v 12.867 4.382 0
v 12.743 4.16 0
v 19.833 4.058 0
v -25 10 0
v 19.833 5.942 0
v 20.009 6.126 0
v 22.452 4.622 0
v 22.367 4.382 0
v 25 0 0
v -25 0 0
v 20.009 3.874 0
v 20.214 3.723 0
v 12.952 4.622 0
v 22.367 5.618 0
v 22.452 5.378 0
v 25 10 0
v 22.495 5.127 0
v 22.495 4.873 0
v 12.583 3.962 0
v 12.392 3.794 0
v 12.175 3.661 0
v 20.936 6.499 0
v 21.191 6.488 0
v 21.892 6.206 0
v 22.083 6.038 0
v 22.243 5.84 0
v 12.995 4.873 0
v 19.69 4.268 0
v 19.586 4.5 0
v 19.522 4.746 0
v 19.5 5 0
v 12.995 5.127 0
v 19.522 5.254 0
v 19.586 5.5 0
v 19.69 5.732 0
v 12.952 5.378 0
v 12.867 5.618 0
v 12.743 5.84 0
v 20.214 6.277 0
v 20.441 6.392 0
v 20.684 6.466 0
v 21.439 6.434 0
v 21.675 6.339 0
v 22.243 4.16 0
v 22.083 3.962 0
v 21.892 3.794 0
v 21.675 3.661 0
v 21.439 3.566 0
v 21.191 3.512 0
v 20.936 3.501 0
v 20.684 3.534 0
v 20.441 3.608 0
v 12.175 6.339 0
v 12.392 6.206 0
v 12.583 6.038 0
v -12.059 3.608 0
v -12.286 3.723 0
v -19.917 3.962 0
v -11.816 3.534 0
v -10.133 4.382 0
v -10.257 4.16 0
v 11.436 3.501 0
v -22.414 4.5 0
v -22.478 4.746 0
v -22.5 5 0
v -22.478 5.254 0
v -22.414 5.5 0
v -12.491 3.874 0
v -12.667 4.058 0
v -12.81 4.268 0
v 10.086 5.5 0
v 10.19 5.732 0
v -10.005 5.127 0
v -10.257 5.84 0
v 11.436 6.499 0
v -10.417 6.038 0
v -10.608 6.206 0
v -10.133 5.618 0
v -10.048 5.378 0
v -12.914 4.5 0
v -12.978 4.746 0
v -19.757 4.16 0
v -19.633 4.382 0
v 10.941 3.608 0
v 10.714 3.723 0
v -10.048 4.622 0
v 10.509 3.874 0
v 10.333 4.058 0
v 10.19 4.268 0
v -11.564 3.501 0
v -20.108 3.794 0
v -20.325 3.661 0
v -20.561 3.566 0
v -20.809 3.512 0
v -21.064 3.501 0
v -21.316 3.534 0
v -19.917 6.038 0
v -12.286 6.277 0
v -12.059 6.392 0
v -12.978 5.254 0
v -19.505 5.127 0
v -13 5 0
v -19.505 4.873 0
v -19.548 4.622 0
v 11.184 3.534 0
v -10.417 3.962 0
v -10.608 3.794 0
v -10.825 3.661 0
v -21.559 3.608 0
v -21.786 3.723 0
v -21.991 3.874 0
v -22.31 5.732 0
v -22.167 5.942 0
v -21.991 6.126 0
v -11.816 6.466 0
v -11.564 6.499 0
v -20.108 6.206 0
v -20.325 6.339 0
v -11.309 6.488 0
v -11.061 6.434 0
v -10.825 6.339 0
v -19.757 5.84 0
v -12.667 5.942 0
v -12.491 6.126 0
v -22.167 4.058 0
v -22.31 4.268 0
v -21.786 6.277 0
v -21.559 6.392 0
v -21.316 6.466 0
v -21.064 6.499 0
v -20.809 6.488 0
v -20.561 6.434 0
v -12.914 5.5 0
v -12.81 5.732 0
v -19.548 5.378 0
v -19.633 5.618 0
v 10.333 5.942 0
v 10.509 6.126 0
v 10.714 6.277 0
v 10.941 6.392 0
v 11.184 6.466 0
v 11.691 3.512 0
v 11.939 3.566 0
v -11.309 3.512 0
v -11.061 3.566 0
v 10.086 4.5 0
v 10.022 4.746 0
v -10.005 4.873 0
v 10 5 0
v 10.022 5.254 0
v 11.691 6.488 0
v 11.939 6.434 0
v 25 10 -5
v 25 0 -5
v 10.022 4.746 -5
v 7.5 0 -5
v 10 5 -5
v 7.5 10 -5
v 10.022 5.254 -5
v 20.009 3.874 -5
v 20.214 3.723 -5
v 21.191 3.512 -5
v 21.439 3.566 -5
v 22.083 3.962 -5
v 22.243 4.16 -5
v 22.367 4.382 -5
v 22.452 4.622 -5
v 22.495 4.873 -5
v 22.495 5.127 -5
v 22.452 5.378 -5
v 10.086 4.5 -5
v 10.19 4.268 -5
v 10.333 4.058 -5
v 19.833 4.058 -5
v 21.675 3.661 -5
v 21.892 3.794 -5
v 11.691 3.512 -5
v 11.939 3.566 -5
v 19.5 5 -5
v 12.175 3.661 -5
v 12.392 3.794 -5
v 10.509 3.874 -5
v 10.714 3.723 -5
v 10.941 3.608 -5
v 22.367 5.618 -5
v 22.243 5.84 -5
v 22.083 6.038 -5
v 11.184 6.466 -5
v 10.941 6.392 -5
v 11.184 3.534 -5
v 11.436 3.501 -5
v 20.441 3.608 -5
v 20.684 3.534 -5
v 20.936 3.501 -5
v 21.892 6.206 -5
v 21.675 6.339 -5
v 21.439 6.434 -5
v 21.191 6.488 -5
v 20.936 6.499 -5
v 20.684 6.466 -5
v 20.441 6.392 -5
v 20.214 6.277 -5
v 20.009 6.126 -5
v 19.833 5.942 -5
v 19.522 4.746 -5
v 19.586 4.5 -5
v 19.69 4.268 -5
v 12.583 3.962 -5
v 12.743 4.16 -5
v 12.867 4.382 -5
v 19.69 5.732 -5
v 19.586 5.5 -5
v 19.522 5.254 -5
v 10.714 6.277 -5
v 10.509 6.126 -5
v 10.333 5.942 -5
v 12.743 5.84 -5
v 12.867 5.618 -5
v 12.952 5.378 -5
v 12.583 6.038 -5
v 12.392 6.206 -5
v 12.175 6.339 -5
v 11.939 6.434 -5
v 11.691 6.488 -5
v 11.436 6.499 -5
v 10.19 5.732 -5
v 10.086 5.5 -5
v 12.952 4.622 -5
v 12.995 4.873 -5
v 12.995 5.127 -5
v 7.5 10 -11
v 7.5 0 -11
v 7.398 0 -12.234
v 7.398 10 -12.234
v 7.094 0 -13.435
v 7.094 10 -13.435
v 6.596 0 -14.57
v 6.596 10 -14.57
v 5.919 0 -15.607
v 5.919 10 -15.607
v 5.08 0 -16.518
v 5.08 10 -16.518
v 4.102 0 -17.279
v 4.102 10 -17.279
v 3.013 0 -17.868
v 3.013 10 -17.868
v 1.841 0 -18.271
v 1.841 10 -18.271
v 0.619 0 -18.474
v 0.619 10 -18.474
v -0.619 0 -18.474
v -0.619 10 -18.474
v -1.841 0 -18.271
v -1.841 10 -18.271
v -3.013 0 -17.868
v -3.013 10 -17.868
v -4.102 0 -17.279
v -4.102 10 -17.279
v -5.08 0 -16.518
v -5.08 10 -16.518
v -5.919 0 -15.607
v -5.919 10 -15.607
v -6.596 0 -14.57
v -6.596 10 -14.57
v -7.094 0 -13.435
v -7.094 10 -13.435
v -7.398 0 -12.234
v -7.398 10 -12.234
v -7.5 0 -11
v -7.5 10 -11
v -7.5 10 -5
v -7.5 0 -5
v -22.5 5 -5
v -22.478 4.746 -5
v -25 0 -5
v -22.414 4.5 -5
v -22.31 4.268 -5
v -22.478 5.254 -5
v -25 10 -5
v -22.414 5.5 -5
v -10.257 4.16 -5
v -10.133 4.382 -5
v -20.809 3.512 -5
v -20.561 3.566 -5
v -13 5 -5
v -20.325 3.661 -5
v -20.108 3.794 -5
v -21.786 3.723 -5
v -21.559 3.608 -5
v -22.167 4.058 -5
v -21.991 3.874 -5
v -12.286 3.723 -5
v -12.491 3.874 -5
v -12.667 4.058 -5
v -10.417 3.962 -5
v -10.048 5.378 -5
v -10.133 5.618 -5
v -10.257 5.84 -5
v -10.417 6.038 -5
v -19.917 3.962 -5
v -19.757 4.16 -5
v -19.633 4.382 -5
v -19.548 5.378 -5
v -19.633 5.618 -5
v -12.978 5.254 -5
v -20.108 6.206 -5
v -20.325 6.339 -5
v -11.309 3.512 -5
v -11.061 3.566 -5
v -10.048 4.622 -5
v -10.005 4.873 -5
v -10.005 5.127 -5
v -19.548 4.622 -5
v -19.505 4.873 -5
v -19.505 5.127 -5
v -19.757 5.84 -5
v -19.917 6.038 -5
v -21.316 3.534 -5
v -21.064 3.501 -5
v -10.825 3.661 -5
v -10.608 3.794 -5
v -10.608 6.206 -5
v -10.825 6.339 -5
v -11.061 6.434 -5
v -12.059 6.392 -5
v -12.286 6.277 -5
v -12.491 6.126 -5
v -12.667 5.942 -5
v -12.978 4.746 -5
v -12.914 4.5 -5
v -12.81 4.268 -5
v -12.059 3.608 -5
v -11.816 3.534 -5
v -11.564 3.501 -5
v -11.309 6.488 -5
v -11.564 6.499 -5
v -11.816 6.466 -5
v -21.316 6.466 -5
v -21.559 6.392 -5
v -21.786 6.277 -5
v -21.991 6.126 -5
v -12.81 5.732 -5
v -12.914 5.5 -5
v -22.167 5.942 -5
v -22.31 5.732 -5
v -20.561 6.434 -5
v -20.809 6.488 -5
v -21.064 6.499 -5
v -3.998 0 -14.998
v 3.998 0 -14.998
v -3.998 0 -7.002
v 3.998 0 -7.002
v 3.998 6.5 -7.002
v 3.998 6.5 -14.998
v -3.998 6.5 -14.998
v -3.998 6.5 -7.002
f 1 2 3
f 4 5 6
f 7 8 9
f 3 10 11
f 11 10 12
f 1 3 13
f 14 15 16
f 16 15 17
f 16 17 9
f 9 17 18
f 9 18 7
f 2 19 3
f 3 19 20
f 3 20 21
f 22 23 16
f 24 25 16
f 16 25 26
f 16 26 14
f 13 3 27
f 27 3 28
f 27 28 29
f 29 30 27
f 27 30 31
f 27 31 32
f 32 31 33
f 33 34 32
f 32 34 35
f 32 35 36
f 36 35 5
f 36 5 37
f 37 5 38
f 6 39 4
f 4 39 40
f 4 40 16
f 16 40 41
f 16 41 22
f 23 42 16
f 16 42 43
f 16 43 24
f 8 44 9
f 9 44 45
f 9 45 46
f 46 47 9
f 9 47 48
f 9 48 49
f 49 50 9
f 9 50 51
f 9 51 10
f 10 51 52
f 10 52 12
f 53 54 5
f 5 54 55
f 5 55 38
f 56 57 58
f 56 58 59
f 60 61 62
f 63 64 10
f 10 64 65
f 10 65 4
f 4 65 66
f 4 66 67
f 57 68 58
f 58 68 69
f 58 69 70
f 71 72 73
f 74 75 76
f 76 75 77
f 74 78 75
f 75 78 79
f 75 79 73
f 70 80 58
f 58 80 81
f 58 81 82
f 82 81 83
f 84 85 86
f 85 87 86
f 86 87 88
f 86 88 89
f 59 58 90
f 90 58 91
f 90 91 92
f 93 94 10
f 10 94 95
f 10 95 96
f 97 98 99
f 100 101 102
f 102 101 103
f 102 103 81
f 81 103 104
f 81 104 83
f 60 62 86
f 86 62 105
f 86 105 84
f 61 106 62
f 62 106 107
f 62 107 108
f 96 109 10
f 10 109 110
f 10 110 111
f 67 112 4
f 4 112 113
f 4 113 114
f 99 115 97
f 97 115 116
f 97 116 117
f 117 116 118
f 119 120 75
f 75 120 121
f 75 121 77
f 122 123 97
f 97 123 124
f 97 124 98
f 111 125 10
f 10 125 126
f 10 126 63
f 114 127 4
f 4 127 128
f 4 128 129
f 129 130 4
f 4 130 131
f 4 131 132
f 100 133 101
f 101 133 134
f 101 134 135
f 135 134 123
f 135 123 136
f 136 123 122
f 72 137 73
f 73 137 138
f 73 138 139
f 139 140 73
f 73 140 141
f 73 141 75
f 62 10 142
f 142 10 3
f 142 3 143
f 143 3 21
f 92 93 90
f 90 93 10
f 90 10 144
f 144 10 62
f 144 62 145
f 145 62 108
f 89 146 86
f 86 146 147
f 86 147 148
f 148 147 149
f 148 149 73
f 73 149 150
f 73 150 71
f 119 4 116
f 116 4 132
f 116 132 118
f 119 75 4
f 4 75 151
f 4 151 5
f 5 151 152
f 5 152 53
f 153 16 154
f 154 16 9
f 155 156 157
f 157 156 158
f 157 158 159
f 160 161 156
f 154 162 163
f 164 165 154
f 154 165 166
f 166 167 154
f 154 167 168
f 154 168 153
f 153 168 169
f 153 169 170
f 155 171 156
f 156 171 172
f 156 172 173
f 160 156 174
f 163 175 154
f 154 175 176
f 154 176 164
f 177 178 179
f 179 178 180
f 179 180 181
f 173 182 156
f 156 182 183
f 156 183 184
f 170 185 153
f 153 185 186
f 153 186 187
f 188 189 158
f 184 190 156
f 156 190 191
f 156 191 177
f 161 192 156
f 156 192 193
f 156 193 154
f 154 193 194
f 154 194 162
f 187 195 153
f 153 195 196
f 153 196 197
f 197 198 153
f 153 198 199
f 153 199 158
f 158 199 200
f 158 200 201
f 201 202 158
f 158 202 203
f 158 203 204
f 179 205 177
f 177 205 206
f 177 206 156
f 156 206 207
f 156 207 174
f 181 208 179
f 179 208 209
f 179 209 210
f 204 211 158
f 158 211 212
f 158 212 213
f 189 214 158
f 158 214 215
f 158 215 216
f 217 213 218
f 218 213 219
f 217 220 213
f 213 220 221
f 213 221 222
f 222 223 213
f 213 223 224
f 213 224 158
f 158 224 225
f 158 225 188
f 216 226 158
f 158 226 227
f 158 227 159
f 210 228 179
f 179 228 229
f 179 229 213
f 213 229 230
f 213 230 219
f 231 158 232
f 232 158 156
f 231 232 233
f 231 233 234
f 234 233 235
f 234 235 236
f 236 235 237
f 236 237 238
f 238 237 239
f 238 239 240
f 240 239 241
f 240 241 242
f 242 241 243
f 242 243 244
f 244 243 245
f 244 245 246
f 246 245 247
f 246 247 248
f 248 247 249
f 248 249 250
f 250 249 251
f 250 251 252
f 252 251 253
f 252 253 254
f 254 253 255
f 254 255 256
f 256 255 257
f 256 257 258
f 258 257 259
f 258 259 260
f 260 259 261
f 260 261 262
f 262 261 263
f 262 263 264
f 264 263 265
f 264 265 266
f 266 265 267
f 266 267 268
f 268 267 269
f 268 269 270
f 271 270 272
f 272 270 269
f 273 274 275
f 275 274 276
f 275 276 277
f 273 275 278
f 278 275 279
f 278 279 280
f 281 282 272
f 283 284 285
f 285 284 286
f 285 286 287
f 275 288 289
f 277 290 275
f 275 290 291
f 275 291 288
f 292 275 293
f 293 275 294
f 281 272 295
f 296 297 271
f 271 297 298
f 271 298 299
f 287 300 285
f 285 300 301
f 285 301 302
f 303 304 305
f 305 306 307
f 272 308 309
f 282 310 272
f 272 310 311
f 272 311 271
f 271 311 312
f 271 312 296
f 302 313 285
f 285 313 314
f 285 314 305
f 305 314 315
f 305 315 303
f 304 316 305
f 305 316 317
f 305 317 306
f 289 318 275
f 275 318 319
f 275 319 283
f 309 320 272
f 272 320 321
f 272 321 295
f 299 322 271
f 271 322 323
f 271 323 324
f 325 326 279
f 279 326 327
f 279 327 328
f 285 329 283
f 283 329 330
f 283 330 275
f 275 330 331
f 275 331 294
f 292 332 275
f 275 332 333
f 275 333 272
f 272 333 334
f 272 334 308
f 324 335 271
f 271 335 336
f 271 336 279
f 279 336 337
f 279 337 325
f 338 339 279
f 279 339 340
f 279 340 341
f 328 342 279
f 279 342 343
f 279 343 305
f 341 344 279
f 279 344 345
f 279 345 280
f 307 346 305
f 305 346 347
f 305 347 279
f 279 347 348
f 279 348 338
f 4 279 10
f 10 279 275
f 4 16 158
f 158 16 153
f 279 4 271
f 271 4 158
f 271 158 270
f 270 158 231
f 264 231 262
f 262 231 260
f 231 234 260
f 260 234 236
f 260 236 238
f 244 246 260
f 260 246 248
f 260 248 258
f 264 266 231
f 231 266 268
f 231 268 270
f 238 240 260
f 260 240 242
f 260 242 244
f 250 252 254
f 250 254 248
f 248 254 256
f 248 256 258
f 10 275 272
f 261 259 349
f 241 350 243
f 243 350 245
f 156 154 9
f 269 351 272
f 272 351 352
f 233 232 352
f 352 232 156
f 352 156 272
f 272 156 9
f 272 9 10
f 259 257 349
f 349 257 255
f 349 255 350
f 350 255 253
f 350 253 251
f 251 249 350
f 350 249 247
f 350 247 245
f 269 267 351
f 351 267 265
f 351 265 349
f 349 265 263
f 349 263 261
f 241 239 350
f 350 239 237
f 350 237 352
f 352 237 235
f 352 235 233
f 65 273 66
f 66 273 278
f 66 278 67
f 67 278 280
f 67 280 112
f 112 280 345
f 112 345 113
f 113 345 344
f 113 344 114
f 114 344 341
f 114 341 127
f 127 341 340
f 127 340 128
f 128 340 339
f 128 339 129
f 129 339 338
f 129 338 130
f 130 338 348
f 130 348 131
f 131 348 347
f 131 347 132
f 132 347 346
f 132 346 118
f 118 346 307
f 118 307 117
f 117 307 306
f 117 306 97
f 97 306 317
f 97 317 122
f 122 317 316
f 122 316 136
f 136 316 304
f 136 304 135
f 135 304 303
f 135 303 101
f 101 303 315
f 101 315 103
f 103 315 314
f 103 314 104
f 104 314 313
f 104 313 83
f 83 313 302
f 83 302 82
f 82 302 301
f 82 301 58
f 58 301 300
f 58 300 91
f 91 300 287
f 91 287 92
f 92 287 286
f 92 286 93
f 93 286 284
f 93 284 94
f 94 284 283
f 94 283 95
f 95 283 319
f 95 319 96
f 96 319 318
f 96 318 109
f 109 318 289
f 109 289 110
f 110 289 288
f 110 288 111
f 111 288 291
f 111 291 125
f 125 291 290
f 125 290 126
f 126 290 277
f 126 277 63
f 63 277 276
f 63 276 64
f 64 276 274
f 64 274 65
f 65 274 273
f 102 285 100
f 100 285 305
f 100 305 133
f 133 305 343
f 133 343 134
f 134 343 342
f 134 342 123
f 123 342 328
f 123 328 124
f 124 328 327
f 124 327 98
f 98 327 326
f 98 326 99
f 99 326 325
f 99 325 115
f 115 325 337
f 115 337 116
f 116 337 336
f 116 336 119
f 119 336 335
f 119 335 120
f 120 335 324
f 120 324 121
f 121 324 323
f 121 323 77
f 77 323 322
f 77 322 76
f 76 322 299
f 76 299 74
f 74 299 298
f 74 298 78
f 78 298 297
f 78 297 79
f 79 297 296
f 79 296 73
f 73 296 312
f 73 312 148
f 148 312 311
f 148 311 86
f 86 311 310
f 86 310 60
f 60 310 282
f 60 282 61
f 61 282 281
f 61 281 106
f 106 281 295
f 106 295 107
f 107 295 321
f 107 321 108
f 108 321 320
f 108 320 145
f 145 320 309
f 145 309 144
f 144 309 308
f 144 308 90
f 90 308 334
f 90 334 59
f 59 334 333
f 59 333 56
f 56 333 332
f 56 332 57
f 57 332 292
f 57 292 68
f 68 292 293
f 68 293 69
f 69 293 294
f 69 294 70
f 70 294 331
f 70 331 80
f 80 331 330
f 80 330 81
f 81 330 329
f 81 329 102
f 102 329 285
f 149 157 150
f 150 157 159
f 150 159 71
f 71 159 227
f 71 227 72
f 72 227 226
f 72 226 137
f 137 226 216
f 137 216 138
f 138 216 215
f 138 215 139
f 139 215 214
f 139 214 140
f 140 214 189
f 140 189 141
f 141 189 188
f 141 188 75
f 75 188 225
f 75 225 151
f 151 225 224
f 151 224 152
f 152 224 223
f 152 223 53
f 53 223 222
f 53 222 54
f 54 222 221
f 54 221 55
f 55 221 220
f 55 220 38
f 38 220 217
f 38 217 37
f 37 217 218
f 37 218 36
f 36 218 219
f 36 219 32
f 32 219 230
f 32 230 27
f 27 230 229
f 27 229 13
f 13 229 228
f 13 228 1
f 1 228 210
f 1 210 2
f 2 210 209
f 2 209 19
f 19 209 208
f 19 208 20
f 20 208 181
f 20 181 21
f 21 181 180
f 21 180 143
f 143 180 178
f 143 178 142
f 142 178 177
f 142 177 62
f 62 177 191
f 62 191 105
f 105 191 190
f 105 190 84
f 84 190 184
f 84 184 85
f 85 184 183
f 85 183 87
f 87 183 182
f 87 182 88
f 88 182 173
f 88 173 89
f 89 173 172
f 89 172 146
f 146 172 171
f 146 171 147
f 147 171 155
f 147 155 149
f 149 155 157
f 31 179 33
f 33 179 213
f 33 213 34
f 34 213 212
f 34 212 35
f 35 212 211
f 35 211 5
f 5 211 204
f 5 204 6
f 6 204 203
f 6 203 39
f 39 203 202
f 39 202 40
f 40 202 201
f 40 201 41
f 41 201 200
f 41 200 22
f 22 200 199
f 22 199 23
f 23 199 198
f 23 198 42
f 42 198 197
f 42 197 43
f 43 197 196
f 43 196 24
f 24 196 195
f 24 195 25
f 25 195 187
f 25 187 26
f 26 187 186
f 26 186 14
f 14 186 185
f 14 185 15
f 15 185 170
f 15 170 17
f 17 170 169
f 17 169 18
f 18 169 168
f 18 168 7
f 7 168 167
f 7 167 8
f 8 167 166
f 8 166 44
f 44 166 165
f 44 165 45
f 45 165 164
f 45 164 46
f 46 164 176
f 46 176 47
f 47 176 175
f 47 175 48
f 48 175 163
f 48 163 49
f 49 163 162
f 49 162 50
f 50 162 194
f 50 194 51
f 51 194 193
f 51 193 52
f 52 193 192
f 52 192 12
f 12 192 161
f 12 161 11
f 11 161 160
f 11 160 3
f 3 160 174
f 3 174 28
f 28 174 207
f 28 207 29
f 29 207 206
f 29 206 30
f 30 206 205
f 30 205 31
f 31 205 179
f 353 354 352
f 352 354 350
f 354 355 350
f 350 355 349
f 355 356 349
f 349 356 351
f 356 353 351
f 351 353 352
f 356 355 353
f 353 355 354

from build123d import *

# Parameters (mm, degrees)
DODANIE_WYCI_GNI_CIE1_DEPTH = 10
SZKIC5_R                    = 1.5
WYTNIJ_WYCI_GNI_CIE2_DEPTH  = 5
SZKIC6_W                    = 7.995239892
SZKIC6_H                    = 7.995239892
WYTNIJ_WYCI_GNI_CIE3_DEPTH  = 6.5


with BuildPart() as part:
    # Szkic1 → Dodanie-wyciągnięcie1 (new body)
    with BuildSketch(Plane(origin=(0, 0, 0), x_dir=(1, 0, 0), z_dir=(0, 1, 0))):
        with BuildLine():
            Line((-25, 0), (25, 0))
            Line((25, 0), (25, 5))
            Line((25, 5), (7.5, 5))
            Line((7.5, 5), (7.5, 11))
            ThreePointArc((7.5, 11), (0, 18.5), (-7.5, 11))
            Line((-7.5, 11), (-7.5, 5))
            Line((-7.5, 5), (-25, 5))
            Line((-25, 5), (-25, 0))
        make_face()
    extrude(amount=DODANIE_WYCI_GNI_CIE1_DEPTH)

    # Szkic5 → Wytnij-wyciągnięcie2 (cut)
    with BuildSketch(Plane(origin=(0, 0, -5), x_dir=(-1, 0, 0), z_dir=(0, 0, -1))):
        with Locations((-21, 5)):
            Circle(SZKIC5_R)
        with Locations((-11.5, 5)):
            Circle(SZKIC5_R)
        with Locations((11.5, 5)):
            Circle(SZKIC5_R)
        with Locations((21, 5)):
            Circle(SZKIC5_R)
    extrude(amount=-WYTNIJ_WYCI_GNI_CIE2_DEPTH, mode=Mode.SUBTRACT)

    # Szkic6 → Wytnij-wyciągnięcie3 (cut)
    with BuildSketch(Plane.XZ):
        with Locations((0, -11)):
            Rectangle(SZKIC6_W, SZKIC6_H)
    extrude(amount=-WYTNIJ_WYCI_GNI_CIE3_DEPTH, mode=Mode.SUBTRACT)


solid = part.part
